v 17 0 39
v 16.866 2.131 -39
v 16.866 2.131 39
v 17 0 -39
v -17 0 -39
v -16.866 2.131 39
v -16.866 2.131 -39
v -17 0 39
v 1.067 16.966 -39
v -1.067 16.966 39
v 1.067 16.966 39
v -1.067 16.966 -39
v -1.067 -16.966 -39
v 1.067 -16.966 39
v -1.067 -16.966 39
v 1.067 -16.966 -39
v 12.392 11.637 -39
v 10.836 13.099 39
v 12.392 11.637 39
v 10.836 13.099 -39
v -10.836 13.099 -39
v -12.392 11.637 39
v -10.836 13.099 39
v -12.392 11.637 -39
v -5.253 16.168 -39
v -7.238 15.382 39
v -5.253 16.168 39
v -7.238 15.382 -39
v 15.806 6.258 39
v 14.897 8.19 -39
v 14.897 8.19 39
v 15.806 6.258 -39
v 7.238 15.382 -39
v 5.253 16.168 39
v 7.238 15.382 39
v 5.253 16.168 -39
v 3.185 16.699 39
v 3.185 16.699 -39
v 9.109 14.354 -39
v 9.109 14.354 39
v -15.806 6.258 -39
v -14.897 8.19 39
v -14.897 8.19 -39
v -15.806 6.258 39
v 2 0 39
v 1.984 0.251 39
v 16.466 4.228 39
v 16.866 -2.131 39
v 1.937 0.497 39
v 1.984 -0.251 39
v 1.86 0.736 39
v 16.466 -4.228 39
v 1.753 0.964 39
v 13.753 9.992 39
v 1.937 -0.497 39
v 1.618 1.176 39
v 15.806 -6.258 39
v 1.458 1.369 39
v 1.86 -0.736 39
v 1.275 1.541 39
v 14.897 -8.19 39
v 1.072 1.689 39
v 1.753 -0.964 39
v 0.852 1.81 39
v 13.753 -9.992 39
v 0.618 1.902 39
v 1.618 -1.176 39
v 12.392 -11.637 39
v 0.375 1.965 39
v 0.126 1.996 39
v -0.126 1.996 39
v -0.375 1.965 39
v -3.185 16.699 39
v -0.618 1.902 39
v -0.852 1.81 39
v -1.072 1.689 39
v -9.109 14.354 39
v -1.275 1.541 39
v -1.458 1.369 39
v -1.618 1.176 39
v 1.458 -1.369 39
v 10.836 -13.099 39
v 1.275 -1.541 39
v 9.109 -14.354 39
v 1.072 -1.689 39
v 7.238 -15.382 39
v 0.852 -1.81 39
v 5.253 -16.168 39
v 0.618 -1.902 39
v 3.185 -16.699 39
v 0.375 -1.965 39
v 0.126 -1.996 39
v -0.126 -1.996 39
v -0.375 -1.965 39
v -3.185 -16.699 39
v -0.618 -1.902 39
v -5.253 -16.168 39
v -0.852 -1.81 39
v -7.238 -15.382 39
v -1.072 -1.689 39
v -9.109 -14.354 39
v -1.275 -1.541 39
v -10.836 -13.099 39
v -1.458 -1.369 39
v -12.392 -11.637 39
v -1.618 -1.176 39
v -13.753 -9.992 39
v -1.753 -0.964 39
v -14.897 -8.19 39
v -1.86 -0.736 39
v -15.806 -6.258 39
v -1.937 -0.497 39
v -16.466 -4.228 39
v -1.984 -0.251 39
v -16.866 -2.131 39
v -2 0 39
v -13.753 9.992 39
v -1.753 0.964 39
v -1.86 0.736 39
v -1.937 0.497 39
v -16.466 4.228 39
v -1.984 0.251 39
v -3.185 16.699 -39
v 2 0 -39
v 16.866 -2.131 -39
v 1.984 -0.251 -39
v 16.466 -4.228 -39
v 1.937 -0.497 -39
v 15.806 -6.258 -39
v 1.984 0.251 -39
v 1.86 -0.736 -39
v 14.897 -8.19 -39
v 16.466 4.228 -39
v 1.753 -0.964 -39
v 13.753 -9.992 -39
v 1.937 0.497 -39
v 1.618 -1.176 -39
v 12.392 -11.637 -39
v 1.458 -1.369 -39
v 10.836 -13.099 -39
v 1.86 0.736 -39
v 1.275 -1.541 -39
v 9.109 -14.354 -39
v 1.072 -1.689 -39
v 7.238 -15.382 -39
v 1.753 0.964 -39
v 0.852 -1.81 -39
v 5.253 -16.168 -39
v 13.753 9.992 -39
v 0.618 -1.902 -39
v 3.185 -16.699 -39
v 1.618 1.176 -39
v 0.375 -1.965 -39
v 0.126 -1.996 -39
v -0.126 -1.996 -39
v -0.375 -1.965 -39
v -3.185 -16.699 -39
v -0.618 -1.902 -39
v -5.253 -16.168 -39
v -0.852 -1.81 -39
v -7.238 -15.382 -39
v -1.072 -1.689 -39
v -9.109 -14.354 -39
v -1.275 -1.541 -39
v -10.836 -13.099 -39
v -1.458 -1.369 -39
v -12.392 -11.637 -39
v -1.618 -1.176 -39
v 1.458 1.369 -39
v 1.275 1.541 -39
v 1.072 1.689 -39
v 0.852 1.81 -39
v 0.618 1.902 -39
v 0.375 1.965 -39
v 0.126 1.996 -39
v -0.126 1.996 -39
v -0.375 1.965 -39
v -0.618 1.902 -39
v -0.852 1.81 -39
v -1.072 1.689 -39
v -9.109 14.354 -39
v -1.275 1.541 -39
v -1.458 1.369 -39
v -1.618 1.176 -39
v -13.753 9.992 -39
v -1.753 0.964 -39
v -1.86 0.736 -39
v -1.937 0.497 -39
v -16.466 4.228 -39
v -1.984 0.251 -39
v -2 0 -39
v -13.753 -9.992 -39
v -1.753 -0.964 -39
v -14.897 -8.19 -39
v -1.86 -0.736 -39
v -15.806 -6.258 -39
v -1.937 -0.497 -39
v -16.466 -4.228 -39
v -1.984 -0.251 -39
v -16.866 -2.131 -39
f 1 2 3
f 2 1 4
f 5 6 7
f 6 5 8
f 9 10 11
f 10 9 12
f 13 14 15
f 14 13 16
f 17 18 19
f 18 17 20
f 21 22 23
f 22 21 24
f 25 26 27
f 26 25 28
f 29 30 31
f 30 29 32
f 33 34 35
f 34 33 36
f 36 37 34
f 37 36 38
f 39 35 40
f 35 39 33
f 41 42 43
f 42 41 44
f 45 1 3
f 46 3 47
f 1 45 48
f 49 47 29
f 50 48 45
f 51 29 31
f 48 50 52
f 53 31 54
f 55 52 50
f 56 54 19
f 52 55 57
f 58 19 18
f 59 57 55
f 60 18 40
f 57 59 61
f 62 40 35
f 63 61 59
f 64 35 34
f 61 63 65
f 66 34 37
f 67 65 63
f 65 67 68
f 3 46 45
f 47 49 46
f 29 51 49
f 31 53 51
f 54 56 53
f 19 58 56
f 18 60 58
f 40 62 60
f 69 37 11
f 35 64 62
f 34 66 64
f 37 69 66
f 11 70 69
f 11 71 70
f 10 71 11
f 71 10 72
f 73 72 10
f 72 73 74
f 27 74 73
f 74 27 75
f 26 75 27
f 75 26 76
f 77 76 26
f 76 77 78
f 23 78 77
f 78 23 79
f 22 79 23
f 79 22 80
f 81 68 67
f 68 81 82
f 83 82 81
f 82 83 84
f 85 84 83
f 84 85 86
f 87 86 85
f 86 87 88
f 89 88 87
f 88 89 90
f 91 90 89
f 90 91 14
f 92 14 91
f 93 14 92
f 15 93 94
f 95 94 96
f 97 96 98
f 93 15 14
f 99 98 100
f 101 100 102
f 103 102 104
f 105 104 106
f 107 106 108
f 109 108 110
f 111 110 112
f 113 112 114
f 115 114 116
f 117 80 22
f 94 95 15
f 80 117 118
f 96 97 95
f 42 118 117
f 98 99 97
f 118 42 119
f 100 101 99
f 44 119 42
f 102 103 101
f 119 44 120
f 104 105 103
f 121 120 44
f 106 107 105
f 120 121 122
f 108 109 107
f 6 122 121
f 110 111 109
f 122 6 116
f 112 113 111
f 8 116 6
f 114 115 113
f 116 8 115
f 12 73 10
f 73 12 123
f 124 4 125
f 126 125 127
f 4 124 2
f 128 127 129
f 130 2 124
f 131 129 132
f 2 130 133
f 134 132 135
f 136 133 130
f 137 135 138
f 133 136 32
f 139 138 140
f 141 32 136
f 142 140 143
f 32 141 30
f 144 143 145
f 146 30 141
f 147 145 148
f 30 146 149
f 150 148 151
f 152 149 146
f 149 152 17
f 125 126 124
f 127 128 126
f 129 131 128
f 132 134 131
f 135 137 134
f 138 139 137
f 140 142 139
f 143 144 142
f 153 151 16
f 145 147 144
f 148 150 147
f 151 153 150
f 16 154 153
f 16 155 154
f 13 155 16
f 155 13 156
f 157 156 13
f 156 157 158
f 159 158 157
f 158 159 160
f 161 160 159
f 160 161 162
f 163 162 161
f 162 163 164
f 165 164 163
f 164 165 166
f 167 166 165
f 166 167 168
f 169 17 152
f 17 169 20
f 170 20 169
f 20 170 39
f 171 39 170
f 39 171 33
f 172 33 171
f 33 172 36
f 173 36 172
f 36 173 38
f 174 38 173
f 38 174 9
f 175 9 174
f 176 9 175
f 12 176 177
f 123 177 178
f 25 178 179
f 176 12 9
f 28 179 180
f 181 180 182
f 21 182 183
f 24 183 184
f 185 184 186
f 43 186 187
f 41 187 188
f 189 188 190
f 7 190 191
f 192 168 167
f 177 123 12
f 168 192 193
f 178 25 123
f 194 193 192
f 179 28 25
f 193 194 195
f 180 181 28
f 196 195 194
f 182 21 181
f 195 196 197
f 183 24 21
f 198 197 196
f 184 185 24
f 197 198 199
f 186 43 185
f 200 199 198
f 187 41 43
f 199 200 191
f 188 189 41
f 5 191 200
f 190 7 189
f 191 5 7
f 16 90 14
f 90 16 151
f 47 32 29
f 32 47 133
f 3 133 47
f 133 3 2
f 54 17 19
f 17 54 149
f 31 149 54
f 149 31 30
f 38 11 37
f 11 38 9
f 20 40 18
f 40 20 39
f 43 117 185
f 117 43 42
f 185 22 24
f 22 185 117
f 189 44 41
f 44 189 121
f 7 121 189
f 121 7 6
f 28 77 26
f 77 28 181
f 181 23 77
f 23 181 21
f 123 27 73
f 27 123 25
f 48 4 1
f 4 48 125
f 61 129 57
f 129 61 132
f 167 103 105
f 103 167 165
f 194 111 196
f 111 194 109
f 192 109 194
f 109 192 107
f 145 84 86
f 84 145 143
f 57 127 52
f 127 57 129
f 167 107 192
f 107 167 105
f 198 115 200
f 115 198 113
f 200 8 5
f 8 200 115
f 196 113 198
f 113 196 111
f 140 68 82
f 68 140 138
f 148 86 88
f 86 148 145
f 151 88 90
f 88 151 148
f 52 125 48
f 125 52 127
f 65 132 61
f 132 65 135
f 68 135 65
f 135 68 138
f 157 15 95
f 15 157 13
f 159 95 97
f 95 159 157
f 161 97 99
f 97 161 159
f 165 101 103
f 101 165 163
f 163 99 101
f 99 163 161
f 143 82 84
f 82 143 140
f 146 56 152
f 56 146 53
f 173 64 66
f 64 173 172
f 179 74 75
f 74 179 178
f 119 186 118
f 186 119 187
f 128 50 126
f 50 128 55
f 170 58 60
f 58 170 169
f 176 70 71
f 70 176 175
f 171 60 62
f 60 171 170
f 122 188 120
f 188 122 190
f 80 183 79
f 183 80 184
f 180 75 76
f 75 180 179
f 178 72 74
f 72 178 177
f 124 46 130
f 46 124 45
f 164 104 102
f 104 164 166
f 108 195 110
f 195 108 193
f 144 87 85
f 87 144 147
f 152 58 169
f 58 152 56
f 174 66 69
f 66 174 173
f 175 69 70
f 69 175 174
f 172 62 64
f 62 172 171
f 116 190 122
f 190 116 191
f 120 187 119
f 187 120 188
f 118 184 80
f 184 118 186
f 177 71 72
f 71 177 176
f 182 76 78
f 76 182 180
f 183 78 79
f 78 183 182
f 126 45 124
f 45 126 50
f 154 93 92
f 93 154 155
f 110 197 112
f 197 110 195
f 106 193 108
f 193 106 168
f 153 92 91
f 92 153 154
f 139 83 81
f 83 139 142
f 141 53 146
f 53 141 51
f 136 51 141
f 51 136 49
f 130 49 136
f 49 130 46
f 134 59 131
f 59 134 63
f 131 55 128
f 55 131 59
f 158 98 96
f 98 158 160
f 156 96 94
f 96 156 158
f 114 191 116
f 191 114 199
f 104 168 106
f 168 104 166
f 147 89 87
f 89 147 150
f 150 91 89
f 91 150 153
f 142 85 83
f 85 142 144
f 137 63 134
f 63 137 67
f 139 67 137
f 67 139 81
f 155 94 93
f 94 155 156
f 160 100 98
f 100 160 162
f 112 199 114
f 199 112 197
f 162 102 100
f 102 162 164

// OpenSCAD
$fn = 50;


difference() {
	union() {
		translate(v = [0, 0, -39.0000000000]) {
			cylinder(h = 78, r = 17.0000000000);
		}
	}
	union() {
		translate(v = [0, 0, -100.0000000000]) {
			cylinder(h = 200, r = 2.0000000000);
		}
	}
}
